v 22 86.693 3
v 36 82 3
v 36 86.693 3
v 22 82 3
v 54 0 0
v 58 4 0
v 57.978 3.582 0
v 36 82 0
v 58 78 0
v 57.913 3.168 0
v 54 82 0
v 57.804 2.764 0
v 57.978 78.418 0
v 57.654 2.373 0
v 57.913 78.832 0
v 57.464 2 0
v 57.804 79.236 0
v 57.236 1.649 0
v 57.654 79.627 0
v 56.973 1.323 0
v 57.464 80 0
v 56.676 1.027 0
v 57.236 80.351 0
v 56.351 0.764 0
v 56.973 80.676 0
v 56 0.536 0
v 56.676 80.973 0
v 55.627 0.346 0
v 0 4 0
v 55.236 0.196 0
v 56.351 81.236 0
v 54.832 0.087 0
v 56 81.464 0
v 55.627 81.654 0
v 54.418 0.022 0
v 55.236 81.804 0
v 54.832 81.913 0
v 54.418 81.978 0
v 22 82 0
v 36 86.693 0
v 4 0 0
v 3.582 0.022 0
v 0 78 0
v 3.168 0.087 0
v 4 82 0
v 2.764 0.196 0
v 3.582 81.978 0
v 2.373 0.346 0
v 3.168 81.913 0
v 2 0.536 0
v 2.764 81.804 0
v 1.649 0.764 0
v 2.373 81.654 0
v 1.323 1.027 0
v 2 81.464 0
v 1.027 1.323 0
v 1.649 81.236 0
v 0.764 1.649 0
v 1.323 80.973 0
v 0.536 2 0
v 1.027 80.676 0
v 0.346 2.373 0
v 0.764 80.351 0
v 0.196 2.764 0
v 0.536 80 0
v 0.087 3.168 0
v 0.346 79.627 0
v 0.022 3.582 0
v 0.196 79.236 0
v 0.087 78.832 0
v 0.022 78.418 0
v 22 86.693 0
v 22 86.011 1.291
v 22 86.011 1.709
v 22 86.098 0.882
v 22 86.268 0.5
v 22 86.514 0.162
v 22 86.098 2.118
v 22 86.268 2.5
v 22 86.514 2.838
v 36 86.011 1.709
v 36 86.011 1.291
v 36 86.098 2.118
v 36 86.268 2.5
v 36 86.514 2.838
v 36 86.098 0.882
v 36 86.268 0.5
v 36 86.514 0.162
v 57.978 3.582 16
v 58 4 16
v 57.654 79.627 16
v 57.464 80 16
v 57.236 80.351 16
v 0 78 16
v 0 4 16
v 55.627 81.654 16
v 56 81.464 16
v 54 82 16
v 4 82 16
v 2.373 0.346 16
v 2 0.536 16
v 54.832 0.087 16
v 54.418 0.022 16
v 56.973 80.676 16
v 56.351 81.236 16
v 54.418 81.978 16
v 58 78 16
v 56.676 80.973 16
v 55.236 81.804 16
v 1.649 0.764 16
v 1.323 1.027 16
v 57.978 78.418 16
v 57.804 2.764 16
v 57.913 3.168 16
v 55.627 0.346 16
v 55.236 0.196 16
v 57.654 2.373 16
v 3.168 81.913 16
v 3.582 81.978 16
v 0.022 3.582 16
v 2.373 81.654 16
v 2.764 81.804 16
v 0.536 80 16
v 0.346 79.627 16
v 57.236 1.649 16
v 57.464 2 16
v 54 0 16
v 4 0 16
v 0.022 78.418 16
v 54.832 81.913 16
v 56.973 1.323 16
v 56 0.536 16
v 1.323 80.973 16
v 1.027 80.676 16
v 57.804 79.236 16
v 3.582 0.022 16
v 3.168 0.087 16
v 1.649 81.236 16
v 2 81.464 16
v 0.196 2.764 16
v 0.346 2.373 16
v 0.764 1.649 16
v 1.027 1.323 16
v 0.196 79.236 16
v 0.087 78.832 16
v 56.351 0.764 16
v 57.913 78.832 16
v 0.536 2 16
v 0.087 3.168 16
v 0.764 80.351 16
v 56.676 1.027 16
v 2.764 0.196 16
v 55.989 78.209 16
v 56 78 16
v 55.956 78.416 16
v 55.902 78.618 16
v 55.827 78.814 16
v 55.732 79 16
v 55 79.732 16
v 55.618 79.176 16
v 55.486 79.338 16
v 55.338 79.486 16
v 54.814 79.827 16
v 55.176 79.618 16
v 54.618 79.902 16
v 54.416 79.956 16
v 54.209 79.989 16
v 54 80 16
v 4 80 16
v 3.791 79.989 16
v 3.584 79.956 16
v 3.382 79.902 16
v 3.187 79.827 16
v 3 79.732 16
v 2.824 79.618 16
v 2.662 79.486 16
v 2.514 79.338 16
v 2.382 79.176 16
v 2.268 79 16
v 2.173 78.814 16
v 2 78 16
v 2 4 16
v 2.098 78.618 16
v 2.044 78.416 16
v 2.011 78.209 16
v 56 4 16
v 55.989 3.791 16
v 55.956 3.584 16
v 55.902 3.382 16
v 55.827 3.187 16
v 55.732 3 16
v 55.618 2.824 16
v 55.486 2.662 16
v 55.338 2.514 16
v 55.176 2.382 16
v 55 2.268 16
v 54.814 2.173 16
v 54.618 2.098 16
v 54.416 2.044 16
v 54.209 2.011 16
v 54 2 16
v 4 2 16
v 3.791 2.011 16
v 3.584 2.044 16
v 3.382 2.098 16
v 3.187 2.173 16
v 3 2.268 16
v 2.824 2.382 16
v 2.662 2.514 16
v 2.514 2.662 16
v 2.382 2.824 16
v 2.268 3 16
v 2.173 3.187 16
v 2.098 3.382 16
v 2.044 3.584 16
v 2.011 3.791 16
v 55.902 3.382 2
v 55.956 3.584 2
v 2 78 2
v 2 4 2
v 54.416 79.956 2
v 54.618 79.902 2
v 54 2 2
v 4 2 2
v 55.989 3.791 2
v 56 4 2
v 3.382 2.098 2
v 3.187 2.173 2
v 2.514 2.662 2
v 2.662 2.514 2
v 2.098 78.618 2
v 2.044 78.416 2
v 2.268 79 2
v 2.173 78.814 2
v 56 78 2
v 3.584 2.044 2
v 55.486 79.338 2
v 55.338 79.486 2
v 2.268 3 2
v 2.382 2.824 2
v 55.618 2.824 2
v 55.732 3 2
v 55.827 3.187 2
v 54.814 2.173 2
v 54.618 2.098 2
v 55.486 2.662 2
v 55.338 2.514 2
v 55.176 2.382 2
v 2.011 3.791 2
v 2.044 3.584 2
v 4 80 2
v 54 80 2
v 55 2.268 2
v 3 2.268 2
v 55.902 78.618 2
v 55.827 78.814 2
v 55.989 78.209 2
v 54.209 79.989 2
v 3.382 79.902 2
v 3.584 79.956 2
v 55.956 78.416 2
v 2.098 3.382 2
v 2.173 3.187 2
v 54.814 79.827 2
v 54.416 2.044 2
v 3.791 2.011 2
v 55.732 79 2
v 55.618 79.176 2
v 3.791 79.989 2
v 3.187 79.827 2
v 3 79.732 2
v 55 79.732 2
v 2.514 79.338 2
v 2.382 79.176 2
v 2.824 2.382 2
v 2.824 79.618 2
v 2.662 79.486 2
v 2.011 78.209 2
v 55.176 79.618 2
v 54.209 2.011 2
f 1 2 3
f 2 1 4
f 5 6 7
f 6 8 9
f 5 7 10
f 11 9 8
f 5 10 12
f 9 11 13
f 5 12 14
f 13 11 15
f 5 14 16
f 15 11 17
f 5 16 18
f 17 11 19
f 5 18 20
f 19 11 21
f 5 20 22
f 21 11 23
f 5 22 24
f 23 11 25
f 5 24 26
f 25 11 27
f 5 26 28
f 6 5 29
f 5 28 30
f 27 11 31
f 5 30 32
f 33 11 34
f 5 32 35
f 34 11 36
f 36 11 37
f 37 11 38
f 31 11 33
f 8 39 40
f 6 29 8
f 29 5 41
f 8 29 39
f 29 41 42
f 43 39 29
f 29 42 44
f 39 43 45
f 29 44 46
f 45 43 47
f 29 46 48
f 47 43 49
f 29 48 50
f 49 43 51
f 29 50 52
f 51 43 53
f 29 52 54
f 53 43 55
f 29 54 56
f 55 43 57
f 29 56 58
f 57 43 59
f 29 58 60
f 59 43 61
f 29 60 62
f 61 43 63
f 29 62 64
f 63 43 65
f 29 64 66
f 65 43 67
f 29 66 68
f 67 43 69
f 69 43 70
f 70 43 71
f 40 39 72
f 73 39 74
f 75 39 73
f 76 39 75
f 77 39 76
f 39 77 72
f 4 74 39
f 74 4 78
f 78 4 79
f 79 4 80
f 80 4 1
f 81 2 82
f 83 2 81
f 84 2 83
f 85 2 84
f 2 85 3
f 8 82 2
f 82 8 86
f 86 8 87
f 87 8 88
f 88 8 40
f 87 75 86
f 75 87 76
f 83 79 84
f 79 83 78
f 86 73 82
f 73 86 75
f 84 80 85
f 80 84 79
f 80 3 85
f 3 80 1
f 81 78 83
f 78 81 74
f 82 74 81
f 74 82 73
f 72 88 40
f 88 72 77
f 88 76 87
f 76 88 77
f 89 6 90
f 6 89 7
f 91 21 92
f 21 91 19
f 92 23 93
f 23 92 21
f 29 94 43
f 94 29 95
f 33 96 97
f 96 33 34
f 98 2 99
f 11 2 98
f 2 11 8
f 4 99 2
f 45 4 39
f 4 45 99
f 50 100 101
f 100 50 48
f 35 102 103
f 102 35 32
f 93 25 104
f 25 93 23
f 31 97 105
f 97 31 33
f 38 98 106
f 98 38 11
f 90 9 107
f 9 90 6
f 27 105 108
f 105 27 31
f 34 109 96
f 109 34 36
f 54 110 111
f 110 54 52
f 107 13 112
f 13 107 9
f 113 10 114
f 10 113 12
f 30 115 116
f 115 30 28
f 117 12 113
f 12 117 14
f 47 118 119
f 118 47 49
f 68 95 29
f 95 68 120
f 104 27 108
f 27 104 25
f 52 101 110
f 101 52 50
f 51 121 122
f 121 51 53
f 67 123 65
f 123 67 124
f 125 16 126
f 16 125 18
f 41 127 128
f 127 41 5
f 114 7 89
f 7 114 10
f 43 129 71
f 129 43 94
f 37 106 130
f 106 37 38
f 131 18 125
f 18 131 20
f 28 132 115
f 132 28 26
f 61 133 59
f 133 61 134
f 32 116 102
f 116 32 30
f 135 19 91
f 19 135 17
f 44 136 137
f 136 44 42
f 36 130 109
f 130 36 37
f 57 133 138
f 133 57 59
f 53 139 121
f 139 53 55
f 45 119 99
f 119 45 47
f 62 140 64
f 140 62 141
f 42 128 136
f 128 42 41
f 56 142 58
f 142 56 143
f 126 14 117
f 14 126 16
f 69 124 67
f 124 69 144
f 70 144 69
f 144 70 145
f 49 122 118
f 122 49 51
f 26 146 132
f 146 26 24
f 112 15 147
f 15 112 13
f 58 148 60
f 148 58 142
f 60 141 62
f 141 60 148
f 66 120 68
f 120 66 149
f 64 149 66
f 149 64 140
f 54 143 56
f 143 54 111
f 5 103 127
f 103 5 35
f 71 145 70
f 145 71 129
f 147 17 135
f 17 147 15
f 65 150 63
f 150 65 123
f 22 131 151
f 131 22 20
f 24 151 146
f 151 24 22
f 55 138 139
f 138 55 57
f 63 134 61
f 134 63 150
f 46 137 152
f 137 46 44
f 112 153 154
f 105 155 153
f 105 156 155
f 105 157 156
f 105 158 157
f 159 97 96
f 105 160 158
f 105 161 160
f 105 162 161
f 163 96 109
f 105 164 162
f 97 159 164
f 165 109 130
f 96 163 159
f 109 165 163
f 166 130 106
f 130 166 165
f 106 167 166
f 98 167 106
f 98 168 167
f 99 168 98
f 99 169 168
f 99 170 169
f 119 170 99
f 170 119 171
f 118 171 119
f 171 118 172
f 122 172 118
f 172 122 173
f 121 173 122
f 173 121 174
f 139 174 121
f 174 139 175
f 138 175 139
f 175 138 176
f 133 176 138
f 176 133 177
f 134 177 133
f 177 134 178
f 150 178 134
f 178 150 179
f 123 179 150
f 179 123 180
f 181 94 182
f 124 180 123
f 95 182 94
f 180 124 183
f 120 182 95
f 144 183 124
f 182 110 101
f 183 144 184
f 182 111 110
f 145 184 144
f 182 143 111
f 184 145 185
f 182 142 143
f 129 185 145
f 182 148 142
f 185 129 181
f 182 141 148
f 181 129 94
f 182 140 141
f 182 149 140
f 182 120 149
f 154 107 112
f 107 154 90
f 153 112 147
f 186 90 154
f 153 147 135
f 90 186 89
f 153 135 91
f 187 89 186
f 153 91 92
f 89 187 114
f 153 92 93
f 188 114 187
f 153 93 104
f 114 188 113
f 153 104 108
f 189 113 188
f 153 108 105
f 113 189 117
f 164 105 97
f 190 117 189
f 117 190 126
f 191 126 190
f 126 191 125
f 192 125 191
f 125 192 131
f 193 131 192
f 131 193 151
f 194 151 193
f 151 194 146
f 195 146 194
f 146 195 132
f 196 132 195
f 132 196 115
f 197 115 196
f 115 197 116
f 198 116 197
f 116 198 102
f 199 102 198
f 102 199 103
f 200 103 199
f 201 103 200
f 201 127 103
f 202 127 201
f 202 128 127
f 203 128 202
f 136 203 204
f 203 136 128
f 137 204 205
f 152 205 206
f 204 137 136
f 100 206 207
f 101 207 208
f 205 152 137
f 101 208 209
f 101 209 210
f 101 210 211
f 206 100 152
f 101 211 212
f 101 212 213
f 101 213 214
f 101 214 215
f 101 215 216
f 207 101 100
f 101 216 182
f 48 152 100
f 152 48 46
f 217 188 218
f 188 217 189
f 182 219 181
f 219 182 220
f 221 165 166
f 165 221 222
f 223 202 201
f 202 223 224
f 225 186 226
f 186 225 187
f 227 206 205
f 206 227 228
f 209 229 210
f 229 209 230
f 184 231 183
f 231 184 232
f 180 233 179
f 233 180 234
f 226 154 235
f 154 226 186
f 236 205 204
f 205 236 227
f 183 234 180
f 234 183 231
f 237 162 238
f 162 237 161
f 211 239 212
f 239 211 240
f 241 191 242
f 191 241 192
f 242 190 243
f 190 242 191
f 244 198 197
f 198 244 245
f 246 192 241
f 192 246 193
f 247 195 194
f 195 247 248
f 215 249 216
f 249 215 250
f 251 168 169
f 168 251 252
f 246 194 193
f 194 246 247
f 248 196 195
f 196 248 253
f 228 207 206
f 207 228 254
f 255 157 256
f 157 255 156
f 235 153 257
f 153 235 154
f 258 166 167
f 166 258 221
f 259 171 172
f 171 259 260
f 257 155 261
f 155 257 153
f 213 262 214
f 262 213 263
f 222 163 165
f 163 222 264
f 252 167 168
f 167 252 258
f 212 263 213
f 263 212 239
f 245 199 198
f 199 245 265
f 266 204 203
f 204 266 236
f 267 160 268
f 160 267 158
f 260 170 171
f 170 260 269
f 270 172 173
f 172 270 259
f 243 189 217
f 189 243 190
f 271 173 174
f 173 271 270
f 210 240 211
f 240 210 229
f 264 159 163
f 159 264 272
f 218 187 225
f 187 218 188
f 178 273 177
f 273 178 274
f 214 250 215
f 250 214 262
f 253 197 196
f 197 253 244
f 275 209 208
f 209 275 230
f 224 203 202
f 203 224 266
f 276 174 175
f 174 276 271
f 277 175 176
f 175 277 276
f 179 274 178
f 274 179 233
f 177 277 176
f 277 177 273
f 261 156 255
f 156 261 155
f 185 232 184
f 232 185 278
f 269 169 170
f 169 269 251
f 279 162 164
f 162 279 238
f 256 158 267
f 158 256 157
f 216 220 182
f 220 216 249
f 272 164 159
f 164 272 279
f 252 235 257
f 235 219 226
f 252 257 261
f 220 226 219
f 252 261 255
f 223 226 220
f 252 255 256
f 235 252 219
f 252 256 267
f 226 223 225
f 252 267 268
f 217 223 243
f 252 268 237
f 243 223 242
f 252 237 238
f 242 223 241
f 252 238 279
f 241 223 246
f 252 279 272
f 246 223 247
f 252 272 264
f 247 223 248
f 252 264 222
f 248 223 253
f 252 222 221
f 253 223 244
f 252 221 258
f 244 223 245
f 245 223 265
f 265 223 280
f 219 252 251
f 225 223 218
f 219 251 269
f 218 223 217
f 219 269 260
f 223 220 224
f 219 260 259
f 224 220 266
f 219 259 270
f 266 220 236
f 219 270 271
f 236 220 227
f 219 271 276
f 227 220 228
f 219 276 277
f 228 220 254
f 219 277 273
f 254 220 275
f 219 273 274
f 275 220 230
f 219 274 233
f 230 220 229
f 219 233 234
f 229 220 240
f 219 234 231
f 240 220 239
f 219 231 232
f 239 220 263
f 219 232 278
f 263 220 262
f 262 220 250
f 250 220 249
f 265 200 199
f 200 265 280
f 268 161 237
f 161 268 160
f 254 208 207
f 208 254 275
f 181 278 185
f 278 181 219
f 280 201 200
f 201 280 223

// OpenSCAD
$fn = 60;
case_w = 58; case_h = 82; front_d = 16; corner_r = 4; wall = 2;
tol = 0.3; lip = 1.5; lip_t = 1.2;
module rbox(w, h, d, r) { hull() { for (x=[r,w-r], y=[r,h-r]) translate([x,y,0]) cylinder(r=r, h=d); } }

difference() {
    union() {
        rbox(case_w, case_h, front_d, corner_r);
        // lip
        translate([wall+tol, wall+tol, front_d-0.01])
            difference() {
                rbox(case_w-2*(wall+tol), case_h-2*(wall+tol), lip, max(corner_r-wall,0.5));
                translate([lip_t, lip_t, -0.1])
                    rbox(case_w-2*(wall+tol)-2*lip_t, case_h-2*(wall+tol)-2*lip_t, lip+0.2, max(corner_r-wall-lip_t,0.5));
            }
        // loop
        translate([case_w/2, case_h-2, 1.5])
            difference() {
                hull() {
                    cube([14, 4, 3], center=true);
                    translate([0, 8, 0]) rotate([0,90,0]) cylinder(d=3, h=14, center=true, $fn=30);
                }
                translate([0, 8, 0]) rotate([0,90,0]) cylinder(d=4, h=16, center=true, $fn=30);
            }
    }
    translate([wall, wall, wall]) rbox(case_w-2*wall, case_h-2*wall, front_d, max(corner_r-wall, 0.5));
}
